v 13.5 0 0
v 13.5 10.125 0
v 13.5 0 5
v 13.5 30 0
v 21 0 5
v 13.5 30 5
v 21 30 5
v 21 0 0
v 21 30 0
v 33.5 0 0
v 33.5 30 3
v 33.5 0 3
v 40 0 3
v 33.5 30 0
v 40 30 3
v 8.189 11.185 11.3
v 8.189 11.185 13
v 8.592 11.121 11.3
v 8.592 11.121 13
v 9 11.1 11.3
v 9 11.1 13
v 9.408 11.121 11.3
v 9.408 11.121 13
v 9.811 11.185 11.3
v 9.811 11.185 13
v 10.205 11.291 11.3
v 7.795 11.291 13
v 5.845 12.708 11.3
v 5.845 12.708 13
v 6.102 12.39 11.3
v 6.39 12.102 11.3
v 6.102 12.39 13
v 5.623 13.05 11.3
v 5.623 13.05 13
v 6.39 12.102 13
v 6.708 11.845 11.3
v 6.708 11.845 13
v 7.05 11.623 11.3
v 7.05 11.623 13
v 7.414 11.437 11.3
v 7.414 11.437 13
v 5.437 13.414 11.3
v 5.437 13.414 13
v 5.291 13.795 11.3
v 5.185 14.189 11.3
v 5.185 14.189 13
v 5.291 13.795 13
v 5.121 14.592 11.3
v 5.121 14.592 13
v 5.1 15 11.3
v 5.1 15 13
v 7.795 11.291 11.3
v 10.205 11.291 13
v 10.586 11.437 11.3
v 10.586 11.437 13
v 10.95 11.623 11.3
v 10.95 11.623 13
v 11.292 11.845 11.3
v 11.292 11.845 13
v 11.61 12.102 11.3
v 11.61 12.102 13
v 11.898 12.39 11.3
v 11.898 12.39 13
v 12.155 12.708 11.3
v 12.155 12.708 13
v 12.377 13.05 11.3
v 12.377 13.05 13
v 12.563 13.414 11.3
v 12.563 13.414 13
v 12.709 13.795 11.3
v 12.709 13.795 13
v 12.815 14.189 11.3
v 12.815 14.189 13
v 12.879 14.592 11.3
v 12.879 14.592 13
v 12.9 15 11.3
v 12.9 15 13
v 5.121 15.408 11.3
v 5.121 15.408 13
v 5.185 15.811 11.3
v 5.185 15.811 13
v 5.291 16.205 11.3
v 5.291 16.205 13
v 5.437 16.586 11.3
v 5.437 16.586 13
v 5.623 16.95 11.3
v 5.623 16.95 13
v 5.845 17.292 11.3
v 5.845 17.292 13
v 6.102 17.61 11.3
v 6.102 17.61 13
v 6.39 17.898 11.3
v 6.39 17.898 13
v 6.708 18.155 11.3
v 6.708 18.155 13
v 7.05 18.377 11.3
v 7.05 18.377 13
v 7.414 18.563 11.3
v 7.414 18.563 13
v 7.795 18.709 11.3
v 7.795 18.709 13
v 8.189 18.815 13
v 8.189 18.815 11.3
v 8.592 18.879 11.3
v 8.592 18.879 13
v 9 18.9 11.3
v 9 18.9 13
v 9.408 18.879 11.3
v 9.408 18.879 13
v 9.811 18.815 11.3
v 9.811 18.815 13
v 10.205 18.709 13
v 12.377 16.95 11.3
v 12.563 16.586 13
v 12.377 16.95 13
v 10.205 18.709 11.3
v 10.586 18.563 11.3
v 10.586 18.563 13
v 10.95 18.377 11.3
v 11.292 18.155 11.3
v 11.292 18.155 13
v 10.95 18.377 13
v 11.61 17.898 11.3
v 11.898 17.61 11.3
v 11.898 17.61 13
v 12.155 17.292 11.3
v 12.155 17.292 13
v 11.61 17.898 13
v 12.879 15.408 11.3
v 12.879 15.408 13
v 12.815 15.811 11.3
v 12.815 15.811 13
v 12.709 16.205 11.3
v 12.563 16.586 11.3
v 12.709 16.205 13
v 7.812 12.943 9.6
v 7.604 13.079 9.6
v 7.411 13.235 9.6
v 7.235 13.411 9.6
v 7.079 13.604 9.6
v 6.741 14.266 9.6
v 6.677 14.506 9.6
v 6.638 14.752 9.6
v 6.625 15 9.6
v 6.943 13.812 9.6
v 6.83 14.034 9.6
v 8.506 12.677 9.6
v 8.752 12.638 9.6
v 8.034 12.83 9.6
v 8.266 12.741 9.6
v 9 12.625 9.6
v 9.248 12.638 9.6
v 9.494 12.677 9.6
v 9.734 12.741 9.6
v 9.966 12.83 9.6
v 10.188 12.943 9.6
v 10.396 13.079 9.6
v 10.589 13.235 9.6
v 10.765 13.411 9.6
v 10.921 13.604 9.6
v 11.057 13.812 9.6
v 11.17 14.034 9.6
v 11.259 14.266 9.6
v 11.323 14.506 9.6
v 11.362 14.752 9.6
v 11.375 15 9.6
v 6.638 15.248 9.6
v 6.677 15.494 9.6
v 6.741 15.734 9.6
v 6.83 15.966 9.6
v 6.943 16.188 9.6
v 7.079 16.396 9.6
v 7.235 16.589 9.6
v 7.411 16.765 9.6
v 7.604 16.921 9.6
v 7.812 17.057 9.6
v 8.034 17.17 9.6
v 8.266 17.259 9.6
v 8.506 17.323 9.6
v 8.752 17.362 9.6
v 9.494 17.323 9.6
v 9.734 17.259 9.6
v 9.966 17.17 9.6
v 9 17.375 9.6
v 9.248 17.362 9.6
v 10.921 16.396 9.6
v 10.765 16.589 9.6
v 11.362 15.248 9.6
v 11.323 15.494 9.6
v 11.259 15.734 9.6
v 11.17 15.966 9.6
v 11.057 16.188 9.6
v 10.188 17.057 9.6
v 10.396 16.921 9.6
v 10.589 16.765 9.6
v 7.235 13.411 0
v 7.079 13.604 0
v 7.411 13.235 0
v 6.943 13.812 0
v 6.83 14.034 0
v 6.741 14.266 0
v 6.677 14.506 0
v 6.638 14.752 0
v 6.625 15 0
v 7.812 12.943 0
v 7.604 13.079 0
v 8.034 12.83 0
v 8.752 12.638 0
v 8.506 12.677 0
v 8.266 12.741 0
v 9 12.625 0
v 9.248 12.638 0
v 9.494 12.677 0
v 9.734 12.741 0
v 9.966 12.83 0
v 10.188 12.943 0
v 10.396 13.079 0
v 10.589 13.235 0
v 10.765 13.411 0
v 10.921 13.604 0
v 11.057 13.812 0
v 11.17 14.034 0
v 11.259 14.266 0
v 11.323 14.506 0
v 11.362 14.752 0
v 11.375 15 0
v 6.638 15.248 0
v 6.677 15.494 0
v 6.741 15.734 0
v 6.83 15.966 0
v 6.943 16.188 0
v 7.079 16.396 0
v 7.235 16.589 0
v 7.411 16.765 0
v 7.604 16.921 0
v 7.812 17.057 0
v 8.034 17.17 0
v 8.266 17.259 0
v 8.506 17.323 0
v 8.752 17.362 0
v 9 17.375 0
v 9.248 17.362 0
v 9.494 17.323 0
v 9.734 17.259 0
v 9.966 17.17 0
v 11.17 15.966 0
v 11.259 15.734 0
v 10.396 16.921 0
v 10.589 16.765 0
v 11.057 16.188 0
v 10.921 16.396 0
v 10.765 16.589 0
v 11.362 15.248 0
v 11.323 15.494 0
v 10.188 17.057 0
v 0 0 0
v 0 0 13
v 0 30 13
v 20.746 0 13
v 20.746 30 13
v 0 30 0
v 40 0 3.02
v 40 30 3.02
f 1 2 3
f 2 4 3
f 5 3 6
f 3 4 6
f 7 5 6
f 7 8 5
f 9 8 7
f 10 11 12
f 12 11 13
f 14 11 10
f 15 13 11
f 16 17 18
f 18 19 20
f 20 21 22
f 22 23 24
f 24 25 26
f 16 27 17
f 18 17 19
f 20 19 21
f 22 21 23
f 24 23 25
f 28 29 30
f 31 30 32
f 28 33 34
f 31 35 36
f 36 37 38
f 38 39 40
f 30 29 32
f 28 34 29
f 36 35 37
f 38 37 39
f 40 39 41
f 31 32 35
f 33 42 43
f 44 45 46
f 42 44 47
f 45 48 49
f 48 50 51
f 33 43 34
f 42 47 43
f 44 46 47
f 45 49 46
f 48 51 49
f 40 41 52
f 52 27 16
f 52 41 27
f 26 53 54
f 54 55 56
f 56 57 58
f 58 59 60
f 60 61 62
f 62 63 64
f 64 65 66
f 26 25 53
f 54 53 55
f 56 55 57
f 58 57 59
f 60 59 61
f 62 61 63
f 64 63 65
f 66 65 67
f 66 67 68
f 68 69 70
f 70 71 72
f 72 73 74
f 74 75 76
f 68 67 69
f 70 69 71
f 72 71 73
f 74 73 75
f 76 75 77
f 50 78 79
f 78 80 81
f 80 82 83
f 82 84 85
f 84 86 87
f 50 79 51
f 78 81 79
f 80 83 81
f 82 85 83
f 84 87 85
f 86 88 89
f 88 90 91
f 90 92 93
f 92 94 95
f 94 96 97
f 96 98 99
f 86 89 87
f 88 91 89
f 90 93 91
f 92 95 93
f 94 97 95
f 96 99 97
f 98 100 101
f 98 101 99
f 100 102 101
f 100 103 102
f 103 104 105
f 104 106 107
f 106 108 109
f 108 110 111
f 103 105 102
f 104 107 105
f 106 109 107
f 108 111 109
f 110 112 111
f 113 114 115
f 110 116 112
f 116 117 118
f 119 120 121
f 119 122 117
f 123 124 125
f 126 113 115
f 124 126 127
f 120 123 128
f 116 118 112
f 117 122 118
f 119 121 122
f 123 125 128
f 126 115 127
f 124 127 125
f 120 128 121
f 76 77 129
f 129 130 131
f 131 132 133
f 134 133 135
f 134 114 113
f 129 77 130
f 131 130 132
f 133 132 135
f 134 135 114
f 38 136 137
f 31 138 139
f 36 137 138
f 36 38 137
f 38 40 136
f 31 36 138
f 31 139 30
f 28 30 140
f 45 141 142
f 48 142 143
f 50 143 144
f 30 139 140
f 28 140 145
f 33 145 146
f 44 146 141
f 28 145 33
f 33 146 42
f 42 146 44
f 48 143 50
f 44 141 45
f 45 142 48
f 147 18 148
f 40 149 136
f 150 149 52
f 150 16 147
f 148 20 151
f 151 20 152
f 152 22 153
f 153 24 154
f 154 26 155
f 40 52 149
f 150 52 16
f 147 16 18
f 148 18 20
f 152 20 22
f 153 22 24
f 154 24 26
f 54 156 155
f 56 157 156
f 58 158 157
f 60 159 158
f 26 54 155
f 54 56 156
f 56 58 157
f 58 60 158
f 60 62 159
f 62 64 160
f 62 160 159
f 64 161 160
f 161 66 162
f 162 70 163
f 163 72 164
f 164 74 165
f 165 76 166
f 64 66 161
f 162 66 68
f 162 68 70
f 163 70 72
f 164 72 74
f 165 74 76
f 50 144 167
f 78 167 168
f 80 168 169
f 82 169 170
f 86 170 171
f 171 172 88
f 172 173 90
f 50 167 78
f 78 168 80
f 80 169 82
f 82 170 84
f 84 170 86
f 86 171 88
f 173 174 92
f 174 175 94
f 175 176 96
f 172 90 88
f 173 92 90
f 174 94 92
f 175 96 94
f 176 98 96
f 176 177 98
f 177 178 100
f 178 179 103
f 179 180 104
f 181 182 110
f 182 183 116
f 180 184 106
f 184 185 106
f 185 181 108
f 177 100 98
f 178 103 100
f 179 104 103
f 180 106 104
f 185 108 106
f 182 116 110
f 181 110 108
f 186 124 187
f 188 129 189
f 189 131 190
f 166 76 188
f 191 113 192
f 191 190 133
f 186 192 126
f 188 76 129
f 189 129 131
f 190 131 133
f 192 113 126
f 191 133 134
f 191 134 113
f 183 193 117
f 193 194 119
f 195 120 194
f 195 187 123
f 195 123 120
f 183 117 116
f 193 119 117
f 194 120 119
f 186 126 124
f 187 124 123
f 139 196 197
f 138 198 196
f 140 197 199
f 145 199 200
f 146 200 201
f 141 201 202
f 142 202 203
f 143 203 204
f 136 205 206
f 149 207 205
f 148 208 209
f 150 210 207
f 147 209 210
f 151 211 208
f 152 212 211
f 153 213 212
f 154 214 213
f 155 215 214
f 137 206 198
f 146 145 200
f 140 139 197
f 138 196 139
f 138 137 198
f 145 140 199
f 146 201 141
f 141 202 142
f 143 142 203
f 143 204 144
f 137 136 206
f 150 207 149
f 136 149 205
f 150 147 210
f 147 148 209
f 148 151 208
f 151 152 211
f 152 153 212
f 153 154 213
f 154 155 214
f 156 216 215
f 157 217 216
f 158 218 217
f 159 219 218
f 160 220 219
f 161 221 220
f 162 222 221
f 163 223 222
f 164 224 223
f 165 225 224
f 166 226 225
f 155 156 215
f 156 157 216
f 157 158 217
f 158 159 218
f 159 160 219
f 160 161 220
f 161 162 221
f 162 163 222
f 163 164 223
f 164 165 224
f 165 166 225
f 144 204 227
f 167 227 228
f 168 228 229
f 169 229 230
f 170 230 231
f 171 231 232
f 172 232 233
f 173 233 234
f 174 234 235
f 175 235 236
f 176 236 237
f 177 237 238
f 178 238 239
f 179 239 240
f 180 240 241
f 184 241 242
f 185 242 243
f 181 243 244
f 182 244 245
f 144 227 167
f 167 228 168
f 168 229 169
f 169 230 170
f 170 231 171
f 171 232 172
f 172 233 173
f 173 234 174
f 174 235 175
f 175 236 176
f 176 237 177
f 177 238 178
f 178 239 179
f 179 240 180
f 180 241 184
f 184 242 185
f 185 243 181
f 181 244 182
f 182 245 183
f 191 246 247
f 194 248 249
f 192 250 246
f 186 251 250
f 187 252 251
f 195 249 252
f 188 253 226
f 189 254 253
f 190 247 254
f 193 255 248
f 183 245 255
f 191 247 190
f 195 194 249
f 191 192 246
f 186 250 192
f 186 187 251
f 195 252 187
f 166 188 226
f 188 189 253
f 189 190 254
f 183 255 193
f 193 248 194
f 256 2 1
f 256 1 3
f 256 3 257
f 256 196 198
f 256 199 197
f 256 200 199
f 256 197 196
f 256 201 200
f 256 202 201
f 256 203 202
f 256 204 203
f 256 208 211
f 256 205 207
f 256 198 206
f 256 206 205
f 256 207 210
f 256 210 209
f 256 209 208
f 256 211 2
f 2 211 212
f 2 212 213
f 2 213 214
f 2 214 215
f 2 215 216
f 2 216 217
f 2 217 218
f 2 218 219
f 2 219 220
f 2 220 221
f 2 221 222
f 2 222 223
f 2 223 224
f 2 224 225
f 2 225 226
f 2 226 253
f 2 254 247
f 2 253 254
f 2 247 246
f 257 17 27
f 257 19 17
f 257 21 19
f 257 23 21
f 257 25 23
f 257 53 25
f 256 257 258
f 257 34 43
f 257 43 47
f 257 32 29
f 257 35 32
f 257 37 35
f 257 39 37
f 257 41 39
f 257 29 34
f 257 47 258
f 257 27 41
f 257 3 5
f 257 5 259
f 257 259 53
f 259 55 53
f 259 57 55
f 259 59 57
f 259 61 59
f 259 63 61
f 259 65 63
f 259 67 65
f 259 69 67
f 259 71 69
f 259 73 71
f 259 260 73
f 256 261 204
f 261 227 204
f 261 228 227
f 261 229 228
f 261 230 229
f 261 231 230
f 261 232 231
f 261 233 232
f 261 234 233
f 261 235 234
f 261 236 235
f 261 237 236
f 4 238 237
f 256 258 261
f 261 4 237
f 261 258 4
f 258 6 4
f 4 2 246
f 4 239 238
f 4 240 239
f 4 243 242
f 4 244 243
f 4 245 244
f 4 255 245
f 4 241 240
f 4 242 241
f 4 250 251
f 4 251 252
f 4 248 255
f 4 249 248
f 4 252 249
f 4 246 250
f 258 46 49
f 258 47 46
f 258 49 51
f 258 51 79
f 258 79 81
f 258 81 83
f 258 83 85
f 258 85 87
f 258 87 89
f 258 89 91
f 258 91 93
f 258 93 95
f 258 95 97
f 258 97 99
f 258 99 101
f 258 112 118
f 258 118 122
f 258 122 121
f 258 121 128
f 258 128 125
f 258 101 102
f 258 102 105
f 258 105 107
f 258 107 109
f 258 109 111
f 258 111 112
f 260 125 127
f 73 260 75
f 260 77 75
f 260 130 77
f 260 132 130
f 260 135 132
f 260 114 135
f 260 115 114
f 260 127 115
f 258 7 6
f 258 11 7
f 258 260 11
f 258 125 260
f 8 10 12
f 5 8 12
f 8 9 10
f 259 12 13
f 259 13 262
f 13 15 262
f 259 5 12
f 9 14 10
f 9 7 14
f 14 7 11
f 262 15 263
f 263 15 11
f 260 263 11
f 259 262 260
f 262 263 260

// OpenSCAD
$fn=60;

module runners() {
    translate([13.5,-1,0]) cube([7.5,40,5]);
    translate([33.5,-1,0]) cube([10,40,3]);
}

module angle() {
    translate([0,-1,13.5]) translate([21,25/2,(10/2)]) rotate([0,27.4,0]) cube([50,50,10], center=true);
}

module hole() {
    diameter=4.75;
    module counterSink() {
        cylinder(d=7.8,h=1.8);
        translate([0,0,-1.7]) cylinder(d2=7.8,d1=diameter,h=1.7);
    }
    
    translate([0,0,13-1.7]) counterSink();
    cylinder(d=diameter, h=13);
}

difference() {
    translate([0,0,0]) cube([40,30,13]);
    runners();
    angle();
    translate([9,30/2,0]) hole();
}

//%translate([20,0,13]) cube([0.5,50,0.5]);
